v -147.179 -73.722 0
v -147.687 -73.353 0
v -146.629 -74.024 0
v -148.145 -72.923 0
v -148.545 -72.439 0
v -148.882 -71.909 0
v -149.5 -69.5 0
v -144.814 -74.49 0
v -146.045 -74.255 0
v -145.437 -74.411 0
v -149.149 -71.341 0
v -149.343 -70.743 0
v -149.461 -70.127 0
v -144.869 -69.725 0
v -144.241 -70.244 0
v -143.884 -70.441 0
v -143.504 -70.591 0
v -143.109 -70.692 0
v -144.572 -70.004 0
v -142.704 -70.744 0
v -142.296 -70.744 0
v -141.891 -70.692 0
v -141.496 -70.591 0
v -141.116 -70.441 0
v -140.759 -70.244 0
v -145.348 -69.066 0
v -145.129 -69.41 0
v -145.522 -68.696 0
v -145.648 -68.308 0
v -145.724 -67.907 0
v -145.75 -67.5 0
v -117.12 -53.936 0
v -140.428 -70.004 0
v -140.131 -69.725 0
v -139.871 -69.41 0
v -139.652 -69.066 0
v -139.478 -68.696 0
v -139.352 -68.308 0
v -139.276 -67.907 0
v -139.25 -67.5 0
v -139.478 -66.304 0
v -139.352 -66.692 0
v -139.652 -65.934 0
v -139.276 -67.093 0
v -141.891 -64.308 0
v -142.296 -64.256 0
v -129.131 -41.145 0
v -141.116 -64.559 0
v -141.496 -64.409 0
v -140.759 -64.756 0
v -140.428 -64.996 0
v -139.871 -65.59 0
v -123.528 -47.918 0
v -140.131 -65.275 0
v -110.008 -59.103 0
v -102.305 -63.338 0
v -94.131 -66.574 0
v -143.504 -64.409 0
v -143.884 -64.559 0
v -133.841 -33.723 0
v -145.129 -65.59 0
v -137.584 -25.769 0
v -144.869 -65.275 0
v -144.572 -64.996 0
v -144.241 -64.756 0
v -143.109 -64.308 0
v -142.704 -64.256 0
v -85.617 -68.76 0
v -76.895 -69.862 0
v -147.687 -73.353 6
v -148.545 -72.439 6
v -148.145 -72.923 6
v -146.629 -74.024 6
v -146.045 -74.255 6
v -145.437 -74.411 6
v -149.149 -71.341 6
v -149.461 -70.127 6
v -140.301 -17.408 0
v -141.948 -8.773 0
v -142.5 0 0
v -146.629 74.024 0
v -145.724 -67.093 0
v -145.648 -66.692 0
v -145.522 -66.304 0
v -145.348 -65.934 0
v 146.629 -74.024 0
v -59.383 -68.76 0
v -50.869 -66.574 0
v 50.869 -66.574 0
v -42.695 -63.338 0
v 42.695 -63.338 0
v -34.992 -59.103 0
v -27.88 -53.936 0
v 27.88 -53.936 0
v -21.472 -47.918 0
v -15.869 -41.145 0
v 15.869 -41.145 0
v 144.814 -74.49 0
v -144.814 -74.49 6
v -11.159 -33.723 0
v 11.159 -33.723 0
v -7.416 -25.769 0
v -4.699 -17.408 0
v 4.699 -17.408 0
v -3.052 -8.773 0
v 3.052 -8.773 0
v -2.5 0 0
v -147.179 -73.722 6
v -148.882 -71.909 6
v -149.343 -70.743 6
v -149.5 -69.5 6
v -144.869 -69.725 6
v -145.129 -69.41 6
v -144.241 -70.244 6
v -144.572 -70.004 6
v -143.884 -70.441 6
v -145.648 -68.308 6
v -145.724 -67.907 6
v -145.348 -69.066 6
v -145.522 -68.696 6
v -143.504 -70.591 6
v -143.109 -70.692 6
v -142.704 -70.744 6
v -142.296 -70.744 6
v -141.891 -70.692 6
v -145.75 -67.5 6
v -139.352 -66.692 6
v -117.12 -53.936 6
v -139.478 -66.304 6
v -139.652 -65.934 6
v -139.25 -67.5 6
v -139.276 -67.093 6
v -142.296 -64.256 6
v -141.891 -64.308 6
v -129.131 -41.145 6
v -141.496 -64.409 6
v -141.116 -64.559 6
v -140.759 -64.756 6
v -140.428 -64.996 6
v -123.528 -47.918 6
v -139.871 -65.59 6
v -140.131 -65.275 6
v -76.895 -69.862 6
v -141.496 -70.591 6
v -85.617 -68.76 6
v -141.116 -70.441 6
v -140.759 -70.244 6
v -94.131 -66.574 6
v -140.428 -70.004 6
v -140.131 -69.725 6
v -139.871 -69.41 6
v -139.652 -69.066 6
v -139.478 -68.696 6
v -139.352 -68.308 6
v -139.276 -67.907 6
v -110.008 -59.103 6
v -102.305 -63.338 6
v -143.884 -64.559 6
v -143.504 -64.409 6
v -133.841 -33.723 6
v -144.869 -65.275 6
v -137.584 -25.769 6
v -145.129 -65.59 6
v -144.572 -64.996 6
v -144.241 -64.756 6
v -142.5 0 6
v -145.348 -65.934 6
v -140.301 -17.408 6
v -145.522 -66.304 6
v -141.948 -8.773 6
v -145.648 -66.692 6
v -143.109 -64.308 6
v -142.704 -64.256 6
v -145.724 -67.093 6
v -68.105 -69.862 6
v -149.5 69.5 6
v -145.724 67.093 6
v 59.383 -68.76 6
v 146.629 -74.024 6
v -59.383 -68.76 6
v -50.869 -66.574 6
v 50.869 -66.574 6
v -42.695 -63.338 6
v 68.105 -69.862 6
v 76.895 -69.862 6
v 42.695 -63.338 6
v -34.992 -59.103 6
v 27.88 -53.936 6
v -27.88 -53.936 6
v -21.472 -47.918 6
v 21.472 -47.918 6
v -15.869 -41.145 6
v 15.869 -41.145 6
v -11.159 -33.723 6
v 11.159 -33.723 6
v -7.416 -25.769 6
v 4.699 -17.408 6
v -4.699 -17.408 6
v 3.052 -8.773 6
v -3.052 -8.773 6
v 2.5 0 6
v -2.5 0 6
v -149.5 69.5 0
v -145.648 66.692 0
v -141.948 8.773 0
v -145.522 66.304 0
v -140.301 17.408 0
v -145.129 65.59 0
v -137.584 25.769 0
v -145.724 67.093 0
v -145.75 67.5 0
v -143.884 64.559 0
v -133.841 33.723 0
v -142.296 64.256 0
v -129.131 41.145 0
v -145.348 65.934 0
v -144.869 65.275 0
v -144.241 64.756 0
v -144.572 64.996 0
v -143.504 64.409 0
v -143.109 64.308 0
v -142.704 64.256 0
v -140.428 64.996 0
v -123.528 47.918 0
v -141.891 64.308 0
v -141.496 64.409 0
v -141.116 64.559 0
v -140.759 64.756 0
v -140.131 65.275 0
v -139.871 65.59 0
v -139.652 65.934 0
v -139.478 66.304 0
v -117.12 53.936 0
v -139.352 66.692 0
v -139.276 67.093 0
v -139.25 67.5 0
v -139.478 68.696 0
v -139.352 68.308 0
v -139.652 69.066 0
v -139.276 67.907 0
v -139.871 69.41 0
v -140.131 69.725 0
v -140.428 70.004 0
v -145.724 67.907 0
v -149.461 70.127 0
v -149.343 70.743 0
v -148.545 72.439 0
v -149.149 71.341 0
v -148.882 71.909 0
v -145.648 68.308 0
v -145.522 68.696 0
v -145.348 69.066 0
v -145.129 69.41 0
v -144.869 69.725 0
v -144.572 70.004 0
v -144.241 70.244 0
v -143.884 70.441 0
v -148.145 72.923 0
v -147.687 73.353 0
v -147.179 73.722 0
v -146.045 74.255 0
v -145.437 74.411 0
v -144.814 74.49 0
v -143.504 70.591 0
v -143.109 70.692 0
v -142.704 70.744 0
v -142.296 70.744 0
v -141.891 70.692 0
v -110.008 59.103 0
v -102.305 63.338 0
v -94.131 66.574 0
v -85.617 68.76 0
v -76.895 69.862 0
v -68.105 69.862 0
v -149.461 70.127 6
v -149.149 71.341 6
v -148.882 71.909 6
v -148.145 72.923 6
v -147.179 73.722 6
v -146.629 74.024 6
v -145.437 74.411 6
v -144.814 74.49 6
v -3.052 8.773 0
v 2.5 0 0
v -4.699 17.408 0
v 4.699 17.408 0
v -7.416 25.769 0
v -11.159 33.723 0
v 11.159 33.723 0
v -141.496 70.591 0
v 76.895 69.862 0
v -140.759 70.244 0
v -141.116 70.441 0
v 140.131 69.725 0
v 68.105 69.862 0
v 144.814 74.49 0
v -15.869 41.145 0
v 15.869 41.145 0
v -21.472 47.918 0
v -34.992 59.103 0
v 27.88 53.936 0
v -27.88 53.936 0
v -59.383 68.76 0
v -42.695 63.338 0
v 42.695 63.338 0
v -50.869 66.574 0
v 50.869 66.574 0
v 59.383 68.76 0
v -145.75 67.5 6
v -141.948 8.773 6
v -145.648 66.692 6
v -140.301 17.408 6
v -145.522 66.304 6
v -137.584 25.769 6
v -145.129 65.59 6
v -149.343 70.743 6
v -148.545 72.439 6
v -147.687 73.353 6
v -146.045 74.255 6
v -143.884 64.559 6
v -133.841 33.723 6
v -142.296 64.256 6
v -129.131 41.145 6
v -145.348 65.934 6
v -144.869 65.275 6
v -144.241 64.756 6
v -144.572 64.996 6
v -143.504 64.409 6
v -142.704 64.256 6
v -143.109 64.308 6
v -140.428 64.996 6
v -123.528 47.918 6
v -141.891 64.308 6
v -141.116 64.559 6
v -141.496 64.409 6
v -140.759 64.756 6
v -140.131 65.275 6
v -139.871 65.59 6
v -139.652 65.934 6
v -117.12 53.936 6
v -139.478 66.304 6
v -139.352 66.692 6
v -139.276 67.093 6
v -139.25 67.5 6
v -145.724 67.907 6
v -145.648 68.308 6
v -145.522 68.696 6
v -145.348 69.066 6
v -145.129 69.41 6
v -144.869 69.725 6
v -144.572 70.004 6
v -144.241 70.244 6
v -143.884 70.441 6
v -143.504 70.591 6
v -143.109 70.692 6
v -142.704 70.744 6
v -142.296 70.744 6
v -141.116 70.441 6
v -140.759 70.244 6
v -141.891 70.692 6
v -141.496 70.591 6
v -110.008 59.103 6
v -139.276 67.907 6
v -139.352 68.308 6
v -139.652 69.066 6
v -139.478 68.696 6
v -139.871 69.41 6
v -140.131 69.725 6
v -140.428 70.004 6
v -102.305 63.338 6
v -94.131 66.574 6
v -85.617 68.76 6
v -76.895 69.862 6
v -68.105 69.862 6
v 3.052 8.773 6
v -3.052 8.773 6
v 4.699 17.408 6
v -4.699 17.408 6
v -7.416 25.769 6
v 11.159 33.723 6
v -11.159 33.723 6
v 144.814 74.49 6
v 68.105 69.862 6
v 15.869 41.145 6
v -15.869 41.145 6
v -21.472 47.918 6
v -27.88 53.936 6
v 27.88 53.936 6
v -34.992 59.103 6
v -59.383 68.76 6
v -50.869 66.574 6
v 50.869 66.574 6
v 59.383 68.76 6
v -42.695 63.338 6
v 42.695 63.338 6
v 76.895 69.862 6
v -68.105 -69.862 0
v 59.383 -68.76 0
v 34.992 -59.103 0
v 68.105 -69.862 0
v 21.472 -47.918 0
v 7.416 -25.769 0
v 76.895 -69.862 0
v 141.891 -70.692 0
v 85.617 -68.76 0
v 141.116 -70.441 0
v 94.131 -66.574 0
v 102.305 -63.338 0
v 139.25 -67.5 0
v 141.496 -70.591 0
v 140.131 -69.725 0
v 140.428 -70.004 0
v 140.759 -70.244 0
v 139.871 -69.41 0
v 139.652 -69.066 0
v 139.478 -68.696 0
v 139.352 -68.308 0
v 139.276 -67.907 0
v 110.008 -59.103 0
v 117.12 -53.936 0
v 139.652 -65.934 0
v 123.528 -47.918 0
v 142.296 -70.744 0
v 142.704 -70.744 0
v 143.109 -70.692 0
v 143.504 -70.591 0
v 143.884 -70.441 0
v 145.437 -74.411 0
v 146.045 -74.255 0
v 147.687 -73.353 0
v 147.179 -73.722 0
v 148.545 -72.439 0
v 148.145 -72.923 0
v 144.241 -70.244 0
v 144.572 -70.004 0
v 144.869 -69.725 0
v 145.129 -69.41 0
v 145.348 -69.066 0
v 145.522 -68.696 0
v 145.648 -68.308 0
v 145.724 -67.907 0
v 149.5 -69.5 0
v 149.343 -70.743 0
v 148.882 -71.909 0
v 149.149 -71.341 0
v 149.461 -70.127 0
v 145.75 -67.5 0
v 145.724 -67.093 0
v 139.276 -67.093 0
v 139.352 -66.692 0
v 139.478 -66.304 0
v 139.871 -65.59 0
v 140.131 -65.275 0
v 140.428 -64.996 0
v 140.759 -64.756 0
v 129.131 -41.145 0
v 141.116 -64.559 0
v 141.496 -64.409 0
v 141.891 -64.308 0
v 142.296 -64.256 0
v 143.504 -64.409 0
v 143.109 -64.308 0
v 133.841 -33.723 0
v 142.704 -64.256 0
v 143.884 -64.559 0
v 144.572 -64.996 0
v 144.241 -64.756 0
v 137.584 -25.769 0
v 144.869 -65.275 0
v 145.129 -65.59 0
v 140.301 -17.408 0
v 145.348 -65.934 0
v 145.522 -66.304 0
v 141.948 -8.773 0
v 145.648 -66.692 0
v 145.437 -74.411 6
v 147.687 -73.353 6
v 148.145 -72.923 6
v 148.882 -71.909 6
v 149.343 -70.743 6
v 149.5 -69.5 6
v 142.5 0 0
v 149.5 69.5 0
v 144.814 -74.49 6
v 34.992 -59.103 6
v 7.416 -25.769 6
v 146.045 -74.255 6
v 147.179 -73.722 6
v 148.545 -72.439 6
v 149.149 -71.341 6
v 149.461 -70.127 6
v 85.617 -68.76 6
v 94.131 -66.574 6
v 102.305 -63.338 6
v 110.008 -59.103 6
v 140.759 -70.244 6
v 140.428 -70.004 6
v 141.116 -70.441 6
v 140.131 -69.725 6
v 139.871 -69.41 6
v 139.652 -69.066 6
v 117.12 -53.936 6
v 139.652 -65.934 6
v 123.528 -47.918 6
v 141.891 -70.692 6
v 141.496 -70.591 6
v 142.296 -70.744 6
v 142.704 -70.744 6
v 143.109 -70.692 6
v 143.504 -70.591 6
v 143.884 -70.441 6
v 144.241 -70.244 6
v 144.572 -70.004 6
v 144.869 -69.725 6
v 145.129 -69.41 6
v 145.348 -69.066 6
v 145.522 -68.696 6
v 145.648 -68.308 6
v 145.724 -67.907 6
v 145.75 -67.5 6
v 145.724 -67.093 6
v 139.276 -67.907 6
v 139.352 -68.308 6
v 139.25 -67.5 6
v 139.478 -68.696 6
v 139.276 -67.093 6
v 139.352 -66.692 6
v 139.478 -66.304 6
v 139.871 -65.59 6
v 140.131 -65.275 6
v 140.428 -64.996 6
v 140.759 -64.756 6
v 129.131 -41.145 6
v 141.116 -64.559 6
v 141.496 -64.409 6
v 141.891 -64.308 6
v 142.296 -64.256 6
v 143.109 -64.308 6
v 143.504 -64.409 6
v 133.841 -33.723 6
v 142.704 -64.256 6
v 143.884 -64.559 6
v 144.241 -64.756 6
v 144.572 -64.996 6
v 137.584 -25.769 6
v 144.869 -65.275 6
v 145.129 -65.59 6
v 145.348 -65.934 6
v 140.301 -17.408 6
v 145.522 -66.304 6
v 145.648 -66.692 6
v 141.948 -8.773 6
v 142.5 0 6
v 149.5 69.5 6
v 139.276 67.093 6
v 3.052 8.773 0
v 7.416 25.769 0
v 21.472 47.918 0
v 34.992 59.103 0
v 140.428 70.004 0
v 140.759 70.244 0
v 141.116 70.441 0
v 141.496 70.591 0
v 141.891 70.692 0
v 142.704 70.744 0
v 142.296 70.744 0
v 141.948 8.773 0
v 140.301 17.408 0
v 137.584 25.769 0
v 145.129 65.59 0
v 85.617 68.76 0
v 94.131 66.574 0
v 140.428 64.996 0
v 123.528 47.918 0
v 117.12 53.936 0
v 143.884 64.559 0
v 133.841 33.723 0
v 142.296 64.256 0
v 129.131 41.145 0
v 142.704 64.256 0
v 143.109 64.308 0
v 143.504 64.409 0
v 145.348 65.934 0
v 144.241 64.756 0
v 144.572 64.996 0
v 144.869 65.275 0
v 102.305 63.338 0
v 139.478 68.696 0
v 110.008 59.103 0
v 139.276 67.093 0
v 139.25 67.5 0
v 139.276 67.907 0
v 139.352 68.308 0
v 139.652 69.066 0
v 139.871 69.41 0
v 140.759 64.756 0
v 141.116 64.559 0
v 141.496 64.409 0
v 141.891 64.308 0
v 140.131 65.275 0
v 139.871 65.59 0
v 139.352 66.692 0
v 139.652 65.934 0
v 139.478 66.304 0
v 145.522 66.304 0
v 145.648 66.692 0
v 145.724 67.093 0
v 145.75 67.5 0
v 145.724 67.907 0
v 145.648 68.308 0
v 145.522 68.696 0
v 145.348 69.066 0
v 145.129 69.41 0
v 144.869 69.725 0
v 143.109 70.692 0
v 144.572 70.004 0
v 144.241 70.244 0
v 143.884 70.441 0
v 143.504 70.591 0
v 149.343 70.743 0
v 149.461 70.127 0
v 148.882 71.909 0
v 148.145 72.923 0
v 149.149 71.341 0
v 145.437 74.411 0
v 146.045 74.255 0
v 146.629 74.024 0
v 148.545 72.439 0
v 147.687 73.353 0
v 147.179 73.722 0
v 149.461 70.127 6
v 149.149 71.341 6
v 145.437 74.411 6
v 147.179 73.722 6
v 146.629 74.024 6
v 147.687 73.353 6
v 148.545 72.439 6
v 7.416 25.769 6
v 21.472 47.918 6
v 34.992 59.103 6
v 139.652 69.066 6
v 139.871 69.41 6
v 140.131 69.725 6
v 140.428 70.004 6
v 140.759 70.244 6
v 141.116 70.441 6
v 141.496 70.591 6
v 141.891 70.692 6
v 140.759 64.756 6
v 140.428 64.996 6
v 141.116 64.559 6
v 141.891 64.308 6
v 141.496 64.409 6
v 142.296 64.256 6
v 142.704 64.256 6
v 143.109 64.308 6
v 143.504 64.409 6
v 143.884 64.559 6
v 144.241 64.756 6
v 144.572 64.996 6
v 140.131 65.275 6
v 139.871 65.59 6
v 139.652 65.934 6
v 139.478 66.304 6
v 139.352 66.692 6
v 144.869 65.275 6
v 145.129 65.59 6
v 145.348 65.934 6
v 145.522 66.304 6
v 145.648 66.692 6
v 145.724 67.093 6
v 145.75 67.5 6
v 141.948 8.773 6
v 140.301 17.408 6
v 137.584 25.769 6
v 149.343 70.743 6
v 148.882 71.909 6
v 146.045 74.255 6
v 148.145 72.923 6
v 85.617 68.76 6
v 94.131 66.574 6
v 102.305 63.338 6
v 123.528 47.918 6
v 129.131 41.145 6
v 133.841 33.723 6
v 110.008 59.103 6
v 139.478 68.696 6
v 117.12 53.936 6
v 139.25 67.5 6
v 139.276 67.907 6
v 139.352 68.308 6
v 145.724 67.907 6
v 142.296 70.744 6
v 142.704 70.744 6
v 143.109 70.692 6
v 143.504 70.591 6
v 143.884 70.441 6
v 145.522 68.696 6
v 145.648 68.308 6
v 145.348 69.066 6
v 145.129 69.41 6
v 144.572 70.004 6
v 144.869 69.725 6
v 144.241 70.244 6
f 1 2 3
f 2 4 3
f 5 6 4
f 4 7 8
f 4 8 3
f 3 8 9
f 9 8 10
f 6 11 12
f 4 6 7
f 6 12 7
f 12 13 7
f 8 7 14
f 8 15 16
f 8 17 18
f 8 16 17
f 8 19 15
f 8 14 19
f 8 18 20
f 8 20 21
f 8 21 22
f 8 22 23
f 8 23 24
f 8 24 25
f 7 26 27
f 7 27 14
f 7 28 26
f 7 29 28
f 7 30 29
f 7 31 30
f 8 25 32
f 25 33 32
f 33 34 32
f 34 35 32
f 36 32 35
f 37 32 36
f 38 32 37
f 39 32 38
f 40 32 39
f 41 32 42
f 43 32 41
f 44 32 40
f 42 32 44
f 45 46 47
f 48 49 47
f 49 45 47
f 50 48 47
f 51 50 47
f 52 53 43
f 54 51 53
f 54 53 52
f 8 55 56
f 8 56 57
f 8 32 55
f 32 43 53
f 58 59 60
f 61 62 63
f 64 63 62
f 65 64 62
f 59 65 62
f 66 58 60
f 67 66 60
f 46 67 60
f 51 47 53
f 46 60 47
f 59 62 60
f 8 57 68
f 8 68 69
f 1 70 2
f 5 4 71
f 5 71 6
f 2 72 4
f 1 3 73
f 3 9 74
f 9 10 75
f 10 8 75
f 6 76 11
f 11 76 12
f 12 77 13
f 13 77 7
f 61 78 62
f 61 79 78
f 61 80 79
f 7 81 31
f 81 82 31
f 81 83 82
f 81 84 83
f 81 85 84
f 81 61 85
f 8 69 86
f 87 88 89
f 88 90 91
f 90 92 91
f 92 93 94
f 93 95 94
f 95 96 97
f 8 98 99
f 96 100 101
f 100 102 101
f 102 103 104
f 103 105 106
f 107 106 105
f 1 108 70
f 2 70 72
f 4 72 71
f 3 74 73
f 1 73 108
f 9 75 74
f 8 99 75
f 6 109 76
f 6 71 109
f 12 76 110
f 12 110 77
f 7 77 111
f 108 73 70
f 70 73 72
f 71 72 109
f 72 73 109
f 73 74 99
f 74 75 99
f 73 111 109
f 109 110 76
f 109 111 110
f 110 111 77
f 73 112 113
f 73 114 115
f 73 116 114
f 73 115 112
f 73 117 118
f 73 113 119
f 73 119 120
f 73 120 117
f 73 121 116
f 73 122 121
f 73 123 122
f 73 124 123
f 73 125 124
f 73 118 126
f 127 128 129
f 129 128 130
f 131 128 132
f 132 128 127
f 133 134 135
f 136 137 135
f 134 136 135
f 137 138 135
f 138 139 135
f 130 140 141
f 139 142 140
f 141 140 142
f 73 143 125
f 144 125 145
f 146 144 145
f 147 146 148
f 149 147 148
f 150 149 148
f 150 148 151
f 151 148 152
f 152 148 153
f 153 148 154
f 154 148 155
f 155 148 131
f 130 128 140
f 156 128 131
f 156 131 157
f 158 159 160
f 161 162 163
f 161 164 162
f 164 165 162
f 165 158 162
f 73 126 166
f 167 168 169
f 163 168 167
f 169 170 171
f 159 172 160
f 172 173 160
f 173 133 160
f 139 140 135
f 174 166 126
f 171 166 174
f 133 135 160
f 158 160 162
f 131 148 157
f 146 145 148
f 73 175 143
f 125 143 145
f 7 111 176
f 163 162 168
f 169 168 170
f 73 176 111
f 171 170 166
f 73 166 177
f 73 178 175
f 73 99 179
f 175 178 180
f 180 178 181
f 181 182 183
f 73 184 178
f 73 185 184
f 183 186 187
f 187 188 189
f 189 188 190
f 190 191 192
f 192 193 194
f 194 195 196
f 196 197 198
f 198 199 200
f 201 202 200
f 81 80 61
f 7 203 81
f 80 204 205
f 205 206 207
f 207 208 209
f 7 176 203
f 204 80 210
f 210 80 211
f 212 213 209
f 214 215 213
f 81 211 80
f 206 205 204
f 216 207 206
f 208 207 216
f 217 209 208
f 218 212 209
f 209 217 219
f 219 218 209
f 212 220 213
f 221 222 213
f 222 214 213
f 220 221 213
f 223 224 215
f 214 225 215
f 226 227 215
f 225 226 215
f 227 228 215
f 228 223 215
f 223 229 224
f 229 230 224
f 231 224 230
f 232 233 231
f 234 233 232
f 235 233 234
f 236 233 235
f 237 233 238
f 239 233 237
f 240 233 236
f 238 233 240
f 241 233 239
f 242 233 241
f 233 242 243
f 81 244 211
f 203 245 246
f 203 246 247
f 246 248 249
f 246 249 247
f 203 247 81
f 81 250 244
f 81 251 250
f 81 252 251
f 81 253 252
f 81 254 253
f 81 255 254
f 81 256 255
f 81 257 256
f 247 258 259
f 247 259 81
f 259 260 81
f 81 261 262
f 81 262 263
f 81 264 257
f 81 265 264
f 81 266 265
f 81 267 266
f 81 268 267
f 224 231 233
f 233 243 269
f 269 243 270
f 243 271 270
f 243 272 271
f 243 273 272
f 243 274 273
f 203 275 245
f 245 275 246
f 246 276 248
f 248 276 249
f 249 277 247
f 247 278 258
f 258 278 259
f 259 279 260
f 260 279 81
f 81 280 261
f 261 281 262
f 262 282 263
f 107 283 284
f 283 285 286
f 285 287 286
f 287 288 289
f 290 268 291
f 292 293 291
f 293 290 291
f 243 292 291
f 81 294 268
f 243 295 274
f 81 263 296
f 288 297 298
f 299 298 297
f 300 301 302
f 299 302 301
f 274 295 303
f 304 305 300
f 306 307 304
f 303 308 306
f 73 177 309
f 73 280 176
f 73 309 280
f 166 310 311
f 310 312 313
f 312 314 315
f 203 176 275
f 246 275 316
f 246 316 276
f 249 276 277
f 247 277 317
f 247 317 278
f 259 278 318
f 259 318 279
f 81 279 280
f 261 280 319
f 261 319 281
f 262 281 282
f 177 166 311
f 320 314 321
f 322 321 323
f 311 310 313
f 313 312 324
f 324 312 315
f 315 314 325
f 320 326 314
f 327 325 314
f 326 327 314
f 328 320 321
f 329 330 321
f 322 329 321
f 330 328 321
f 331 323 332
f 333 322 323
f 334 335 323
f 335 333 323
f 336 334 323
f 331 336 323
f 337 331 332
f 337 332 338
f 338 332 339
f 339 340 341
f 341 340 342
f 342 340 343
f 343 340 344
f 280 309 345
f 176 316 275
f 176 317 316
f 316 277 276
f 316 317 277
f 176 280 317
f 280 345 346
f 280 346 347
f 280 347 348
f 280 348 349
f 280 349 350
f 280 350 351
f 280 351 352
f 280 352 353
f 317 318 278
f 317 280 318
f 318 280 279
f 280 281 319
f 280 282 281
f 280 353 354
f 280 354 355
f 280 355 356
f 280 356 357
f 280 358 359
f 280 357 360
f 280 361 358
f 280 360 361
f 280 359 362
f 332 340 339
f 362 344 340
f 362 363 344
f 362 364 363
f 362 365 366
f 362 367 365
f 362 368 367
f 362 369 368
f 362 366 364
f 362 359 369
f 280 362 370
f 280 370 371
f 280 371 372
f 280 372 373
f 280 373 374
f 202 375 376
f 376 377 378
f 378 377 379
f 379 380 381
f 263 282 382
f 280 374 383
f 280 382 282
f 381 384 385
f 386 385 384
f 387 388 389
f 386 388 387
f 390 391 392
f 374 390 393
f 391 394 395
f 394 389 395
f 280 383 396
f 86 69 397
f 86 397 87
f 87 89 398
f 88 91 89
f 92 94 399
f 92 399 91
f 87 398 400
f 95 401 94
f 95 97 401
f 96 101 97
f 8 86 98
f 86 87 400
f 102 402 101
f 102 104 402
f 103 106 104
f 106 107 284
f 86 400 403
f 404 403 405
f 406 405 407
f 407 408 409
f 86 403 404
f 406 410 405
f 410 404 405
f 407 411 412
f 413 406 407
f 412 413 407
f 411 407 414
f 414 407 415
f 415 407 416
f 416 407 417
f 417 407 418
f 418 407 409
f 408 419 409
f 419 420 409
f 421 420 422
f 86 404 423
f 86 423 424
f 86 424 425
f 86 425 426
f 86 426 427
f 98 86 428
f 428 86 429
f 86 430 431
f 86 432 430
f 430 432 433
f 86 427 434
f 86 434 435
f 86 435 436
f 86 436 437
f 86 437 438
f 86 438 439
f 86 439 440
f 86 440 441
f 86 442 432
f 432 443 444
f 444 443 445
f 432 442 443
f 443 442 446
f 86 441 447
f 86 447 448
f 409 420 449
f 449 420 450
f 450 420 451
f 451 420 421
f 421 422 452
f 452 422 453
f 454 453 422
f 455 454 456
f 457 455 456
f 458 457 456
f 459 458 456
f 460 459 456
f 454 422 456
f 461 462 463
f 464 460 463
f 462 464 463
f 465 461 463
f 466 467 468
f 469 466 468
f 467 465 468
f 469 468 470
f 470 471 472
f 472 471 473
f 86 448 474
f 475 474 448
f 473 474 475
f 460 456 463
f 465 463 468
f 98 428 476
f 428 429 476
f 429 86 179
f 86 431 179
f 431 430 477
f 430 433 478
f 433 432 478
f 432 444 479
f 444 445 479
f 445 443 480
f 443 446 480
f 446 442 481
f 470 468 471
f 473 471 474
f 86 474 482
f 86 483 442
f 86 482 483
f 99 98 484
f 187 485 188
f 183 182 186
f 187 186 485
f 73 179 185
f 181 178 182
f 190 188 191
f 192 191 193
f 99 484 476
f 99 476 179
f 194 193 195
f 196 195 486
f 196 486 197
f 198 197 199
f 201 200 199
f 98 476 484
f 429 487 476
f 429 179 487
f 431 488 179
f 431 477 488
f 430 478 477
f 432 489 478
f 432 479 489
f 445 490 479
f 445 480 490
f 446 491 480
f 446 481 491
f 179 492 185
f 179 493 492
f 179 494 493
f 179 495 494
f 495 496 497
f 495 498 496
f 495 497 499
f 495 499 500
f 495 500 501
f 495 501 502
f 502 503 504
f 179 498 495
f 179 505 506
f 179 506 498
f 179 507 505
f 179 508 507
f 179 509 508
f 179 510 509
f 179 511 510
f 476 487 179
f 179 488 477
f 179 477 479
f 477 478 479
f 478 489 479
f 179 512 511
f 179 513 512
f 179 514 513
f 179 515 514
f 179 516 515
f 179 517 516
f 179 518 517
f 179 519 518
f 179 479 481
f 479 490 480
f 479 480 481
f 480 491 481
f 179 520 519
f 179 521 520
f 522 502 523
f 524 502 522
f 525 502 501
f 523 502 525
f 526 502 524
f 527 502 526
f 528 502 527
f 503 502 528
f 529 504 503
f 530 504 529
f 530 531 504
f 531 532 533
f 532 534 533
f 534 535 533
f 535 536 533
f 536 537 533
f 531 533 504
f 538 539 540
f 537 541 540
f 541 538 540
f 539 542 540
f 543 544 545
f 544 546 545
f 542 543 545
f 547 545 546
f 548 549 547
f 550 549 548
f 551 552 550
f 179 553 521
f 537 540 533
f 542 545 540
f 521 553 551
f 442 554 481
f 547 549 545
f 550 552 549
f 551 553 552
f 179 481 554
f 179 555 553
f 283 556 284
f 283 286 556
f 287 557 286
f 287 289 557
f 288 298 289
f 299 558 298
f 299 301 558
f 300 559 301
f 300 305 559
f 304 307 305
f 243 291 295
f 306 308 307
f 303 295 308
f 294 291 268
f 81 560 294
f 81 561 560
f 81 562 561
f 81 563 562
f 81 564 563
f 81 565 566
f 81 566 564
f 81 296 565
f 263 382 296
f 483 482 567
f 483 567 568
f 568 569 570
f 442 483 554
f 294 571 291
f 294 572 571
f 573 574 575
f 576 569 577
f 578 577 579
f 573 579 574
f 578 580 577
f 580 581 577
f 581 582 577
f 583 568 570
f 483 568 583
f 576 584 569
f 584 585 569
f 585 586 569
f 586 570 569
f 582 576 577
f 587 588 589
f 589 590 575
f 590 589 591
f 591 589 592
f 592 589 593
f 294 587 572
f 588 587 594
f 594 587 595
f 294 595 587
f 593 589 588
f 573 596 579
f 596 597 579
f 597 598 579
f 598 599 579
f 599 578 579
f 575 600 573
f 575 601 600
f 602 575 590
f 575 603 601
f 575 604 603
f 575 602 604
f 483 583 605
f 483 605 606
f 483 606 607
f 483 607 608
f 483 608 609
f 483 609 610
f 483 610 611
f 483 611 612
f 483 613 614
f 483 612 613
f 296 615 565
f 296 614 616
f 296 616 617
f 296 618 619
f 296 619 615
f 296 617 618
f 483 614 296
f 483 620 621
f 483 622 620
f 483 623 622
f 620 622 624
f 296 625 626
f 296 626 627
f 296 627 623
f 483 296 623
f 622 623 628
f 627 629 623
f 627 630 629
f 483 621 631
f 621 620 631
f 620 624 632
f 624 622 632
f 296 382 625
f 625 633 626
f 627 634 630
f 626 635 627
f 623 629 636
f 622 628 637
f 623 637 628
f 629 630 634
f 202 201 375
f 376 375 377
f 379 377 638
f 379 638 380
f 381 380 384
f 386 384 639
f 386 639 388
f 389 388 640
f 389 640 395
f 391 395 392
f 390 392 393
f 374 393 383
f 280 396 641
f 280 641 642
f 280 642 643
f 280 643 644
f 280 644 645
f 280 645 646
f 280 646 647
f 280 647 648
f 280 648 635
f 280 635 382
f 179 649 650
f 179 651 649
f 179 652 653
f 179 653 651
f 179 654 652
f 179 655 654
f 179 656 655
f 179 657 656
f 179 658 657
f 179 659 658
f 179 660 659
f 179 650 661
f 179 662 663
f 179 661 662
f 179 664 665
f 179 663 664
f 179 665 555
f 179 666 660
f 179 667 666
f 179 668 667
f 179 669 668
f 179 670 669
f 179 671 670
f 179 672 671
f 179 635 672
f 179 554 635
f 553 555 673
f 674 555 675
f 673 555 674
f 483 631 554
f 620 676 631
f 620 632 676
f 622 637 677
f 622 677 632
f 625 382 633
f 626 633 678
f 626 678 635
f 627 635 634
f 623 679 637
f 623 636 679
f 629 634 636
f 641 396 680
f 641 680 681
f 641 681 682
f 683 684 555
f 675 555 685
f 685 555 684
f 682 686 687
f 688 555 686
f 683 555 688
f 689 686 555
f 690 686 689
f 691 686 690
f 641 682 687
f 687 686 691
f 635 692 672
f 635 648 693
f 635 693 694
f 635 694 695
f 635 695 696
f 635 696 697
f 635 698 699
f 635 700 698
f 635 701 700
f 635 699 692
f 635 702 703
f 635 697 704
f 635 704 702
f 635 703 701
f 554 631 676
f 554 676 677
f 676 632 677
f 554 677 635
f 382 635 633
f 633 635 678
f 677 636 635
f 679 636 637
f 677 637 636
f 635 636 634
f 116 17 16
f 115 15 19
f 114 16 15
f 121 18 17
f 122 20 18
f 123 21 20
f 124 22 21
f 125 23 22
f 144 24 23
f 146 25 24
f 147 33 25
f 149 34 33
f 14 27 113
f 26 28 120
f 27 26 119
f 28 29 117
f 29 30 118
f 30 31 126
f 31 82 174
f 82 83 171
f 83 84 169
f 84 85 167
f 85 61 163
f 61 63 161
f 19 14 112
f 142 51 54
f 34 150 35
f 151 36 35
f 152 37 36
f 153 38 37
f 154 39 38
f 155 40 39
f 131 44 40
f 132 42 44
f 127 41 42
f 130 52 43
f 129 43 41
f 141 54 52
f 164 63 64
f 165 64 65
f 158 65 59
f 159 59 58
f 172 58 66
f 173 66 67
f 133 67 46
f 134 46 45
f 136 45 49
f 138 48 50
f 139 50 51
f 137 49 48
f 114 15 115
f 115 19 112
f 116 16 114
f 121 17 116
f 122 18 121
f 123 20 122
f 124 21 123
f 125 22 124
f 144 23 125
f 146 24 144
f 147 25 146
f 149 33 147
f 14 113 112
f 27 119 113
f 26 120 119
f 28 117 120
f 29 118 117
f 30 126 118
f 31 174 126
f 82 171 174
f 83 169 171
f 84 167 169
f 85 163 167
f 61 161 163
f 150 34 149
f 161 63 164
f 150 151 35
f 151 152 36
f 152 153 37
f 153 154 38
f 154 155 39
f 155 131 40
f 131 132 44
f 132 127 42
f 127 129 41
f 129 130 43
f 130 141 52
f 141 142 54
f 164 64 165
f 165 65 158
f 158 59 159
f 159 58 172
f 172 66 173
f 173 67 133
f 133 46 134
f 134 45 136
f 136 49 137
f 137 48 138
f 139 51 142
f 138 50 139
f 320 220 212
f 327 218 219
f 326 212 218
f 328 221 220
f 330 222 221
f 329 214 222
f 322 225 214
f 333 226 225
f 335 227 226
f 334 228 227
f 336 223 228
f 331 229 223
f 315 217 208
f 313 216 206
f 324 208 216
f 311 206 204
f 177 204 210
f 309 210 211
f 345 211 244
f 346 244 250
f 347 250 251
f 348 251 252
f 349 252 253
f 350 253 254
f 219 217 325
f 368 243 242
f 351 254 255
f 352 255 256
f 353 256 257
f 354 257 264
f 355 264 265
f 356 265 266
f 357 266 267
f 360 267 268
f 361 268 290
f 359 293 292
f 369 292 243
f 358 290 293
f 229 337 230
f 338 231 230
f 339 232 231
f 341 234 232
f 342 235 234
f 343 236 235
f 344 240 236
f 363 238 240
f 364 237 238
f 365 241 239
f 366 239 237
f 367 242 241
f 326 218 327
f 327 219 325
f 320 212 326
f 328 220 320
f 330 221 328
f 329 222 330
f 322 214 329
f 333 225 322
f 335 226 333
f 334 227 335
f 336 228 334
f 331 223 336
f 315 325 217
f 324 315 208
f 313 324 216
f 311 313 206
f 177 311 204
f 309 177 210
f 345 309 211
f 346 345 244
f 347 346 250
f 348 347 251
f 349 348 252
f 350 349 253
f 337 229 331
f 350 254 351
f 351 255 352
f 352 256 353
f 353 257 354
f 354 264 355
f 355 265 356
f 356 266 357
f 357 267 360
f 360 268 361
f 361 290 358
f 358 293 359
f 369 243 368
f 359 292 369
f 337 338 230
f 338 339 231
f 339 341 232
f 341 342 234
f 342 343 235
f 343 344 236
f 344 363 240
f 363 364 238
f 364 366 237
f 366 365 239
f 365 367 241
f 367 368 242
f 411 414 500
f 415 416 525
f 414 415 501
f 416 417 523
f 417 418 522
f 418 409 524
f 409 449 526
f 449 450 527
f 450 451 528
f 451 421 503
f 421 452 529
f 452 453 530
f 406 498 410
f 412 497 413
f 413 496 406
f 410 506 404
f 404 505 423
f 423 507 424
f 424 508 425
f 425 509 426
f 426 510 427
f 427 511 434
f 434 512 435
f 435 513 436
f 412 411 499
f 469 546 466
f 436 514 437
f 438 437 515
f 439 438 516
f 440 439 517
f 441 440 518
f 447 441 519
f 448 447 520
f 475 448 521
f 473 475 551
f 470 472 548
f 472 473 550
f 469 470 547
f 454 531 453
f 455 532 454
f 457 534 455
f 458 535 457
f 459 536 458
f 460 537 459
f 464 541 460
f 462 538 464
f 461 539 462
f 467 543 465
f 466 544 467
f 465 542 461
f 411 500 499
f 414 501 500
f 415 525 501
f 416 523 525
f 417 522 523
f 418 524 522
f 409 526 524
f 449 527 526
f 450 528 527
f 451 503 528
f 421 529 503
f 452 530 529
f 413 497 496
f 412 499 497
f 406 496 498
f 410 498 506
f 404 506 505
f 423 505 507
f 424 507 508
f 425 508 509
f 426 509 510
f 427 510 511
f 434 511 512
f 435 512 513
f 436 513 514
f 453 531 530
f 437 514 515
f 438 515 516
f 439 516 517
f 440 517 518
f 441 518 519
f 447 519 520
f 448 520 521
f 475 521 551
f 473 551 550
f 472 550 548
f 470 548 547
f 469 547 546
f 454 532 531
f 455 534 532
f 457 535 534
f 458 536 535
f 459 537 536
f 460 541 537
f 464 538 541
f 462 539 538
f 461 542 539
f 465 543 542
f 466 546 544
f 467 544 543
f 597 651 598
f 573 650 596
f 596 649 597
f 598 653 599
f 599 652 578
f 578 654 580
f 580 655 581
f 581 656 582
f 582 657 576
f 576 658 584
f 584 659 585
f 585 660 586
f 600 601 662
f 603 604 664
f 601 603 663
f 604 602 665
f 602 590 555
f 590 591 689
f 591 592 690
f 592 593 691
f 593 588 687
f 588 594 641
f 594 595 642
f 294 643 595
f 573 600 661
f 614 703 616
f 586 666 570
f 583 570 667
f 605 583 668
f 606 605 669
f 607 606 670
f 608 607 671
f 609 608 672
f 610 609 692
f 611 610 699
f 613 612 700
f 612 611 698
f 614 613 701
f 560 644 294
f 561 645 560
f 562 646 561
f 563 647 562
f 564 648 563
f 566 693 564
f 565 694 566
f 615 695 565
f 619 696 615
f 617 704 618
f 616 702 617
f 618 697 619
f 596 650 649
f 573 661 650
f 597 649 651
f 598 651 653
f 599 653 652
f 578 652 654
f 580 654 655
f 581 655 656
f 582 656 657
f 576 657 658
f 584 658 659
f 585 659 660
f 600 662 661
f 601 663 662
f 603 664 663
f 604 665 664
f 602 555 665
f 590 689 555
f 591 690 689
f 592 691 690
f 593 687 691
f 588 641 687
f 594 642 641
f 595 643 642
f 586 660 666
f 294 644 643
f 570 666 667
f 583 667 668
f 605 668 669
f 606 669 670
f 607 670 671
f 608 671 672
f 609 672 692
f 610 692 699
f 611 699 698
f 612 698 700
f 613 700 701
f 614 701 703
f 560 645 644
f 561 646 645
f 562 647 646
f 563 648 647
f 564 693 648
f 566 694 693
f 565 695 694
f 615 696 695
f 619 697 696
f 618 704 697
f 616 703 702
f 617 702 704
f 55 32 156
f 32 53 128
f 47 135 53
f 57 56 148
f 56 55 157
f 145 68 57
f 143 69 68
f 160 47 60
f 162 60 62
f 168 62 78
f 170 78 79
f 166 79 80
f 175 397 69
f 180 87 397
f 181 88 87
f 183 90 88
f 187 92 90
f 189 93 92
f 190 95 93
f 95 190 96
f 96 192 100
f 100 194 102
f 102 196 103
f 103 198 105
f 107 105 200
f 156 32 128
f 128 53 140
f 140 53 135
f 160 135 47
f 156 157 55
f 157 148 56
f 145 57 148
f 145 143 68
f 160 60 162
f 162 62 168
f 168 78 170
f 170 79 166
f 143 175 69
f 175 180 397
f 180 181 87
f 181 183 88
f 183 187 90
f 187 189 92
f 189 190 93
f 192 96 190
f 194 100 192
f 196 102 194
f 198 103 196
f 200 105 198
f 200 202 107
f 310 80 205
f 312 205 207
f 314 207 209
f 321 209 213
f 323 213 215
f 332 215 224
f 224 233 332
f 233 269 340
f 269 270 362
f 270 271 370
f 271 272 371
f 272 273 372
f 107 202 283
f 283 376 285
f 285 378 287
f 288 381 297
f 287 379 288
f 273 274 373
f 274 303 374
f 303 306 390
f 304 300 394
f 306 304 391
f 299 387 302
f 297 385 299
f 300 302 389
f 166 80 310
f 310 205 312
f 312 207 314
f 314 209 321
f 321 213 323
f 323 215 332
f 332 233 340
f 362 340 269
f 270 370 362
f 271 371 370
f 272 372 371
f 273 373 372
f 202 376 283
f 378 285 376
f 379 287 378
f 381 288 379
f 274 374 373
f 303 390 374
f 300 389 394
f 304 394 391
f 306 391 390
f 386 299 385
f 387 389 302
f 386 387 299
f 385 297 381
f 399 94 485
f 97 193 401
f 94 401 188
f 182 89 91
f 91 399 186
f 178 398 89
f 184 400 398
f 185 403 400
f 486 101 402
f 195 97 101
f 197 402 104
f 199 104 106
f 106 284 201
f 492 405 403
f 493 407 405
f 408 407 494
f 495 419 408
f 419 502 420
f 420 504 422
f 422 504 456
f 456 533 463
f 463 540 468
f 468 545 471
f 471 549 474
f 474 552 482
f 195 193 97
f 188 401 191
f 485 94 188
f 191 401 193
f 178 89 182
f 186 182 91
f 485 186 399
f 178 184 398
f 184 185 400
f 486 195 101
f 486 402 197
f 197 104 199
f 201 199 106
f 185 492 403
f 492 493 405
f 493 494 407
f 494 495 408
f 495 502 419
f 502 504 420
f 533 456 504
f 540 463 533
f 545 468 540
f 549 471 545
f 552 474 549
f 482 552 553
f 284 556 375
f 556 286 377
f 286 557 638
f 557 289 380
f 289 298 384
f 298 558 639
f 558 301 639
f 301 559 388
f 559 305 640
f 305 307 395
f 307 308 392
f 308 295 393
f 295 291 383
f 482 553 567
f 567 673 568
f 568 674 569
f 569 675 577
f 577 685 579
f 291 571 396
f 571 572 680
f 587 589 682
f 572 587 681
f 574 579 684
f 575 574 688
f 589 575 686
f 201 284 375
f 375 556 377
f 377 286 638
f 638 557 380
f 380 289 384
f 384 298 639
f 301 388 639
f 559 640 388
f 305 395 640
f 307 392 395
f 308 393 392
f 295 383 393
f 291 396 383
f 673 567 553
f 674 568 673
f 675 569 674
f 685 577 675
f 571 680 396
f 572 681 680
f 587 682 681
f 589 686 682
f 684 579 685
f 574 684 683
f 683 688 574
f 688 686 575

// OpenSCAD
$fn = 50;

difference() {
	union() {
		hull() {
			translate(v = [-144.5, 69.5, 0]) {
				cylinder(h = 6, r = 5);
			}
			translate(v = [144.5, 69.5, 0]) {
				cylinder(h = 6, r = 5);
			}
			translate(v = [-144.5, -69.5, 0]) {
				cylinder(h = 6, r = 5);
			}
			translate(v = [144.5, -69.5, 0]) {
				cylinder(h = 6, r = 5);
			}
		}
	}
	union() {
		translate(v = [-142.5, -67.5, -100.0]) {
			cylinder(h = 200, r = 3.25);
		}
		translate(v = [-142.5, 67.5, -100.0]) {
			cylinder(h = 200, r = 3.25);
		}
		translate(v = [142.5, -67.5, -100.0]) {
			cylinder(h = 200, r = 3.25);
		}
		translate(v = [142.5, 67.5, -100.0]) {
			cylinder(h = 200, r = 3.25);
		}
		translate(v = [-142.5, -67.5, -100.0]) {
			cylinder(h = 200, r = 1.8);
		}
		translate(v = [-142.5, 67.5, -100.0]) {
			cylinder(h = 200, r = 1.8);
		}
		translate(v = [142.5, -67.5, -100.0]) {
			cylinder(h = 200, r = 1.8);
		}
		translate(v = [142.5, 67.5, -100.0]) {
			cylinder(h = 200, r = 1.8);
		}
		translate(v = [-72.5, 0, 0.0]) {
			cylinder(h = 6, r = 70.0);
		}
		translate(v = [72.5, 0, 0.0]) {
			cylinder(h = 6, r = 70.0);
		}
	}
}
